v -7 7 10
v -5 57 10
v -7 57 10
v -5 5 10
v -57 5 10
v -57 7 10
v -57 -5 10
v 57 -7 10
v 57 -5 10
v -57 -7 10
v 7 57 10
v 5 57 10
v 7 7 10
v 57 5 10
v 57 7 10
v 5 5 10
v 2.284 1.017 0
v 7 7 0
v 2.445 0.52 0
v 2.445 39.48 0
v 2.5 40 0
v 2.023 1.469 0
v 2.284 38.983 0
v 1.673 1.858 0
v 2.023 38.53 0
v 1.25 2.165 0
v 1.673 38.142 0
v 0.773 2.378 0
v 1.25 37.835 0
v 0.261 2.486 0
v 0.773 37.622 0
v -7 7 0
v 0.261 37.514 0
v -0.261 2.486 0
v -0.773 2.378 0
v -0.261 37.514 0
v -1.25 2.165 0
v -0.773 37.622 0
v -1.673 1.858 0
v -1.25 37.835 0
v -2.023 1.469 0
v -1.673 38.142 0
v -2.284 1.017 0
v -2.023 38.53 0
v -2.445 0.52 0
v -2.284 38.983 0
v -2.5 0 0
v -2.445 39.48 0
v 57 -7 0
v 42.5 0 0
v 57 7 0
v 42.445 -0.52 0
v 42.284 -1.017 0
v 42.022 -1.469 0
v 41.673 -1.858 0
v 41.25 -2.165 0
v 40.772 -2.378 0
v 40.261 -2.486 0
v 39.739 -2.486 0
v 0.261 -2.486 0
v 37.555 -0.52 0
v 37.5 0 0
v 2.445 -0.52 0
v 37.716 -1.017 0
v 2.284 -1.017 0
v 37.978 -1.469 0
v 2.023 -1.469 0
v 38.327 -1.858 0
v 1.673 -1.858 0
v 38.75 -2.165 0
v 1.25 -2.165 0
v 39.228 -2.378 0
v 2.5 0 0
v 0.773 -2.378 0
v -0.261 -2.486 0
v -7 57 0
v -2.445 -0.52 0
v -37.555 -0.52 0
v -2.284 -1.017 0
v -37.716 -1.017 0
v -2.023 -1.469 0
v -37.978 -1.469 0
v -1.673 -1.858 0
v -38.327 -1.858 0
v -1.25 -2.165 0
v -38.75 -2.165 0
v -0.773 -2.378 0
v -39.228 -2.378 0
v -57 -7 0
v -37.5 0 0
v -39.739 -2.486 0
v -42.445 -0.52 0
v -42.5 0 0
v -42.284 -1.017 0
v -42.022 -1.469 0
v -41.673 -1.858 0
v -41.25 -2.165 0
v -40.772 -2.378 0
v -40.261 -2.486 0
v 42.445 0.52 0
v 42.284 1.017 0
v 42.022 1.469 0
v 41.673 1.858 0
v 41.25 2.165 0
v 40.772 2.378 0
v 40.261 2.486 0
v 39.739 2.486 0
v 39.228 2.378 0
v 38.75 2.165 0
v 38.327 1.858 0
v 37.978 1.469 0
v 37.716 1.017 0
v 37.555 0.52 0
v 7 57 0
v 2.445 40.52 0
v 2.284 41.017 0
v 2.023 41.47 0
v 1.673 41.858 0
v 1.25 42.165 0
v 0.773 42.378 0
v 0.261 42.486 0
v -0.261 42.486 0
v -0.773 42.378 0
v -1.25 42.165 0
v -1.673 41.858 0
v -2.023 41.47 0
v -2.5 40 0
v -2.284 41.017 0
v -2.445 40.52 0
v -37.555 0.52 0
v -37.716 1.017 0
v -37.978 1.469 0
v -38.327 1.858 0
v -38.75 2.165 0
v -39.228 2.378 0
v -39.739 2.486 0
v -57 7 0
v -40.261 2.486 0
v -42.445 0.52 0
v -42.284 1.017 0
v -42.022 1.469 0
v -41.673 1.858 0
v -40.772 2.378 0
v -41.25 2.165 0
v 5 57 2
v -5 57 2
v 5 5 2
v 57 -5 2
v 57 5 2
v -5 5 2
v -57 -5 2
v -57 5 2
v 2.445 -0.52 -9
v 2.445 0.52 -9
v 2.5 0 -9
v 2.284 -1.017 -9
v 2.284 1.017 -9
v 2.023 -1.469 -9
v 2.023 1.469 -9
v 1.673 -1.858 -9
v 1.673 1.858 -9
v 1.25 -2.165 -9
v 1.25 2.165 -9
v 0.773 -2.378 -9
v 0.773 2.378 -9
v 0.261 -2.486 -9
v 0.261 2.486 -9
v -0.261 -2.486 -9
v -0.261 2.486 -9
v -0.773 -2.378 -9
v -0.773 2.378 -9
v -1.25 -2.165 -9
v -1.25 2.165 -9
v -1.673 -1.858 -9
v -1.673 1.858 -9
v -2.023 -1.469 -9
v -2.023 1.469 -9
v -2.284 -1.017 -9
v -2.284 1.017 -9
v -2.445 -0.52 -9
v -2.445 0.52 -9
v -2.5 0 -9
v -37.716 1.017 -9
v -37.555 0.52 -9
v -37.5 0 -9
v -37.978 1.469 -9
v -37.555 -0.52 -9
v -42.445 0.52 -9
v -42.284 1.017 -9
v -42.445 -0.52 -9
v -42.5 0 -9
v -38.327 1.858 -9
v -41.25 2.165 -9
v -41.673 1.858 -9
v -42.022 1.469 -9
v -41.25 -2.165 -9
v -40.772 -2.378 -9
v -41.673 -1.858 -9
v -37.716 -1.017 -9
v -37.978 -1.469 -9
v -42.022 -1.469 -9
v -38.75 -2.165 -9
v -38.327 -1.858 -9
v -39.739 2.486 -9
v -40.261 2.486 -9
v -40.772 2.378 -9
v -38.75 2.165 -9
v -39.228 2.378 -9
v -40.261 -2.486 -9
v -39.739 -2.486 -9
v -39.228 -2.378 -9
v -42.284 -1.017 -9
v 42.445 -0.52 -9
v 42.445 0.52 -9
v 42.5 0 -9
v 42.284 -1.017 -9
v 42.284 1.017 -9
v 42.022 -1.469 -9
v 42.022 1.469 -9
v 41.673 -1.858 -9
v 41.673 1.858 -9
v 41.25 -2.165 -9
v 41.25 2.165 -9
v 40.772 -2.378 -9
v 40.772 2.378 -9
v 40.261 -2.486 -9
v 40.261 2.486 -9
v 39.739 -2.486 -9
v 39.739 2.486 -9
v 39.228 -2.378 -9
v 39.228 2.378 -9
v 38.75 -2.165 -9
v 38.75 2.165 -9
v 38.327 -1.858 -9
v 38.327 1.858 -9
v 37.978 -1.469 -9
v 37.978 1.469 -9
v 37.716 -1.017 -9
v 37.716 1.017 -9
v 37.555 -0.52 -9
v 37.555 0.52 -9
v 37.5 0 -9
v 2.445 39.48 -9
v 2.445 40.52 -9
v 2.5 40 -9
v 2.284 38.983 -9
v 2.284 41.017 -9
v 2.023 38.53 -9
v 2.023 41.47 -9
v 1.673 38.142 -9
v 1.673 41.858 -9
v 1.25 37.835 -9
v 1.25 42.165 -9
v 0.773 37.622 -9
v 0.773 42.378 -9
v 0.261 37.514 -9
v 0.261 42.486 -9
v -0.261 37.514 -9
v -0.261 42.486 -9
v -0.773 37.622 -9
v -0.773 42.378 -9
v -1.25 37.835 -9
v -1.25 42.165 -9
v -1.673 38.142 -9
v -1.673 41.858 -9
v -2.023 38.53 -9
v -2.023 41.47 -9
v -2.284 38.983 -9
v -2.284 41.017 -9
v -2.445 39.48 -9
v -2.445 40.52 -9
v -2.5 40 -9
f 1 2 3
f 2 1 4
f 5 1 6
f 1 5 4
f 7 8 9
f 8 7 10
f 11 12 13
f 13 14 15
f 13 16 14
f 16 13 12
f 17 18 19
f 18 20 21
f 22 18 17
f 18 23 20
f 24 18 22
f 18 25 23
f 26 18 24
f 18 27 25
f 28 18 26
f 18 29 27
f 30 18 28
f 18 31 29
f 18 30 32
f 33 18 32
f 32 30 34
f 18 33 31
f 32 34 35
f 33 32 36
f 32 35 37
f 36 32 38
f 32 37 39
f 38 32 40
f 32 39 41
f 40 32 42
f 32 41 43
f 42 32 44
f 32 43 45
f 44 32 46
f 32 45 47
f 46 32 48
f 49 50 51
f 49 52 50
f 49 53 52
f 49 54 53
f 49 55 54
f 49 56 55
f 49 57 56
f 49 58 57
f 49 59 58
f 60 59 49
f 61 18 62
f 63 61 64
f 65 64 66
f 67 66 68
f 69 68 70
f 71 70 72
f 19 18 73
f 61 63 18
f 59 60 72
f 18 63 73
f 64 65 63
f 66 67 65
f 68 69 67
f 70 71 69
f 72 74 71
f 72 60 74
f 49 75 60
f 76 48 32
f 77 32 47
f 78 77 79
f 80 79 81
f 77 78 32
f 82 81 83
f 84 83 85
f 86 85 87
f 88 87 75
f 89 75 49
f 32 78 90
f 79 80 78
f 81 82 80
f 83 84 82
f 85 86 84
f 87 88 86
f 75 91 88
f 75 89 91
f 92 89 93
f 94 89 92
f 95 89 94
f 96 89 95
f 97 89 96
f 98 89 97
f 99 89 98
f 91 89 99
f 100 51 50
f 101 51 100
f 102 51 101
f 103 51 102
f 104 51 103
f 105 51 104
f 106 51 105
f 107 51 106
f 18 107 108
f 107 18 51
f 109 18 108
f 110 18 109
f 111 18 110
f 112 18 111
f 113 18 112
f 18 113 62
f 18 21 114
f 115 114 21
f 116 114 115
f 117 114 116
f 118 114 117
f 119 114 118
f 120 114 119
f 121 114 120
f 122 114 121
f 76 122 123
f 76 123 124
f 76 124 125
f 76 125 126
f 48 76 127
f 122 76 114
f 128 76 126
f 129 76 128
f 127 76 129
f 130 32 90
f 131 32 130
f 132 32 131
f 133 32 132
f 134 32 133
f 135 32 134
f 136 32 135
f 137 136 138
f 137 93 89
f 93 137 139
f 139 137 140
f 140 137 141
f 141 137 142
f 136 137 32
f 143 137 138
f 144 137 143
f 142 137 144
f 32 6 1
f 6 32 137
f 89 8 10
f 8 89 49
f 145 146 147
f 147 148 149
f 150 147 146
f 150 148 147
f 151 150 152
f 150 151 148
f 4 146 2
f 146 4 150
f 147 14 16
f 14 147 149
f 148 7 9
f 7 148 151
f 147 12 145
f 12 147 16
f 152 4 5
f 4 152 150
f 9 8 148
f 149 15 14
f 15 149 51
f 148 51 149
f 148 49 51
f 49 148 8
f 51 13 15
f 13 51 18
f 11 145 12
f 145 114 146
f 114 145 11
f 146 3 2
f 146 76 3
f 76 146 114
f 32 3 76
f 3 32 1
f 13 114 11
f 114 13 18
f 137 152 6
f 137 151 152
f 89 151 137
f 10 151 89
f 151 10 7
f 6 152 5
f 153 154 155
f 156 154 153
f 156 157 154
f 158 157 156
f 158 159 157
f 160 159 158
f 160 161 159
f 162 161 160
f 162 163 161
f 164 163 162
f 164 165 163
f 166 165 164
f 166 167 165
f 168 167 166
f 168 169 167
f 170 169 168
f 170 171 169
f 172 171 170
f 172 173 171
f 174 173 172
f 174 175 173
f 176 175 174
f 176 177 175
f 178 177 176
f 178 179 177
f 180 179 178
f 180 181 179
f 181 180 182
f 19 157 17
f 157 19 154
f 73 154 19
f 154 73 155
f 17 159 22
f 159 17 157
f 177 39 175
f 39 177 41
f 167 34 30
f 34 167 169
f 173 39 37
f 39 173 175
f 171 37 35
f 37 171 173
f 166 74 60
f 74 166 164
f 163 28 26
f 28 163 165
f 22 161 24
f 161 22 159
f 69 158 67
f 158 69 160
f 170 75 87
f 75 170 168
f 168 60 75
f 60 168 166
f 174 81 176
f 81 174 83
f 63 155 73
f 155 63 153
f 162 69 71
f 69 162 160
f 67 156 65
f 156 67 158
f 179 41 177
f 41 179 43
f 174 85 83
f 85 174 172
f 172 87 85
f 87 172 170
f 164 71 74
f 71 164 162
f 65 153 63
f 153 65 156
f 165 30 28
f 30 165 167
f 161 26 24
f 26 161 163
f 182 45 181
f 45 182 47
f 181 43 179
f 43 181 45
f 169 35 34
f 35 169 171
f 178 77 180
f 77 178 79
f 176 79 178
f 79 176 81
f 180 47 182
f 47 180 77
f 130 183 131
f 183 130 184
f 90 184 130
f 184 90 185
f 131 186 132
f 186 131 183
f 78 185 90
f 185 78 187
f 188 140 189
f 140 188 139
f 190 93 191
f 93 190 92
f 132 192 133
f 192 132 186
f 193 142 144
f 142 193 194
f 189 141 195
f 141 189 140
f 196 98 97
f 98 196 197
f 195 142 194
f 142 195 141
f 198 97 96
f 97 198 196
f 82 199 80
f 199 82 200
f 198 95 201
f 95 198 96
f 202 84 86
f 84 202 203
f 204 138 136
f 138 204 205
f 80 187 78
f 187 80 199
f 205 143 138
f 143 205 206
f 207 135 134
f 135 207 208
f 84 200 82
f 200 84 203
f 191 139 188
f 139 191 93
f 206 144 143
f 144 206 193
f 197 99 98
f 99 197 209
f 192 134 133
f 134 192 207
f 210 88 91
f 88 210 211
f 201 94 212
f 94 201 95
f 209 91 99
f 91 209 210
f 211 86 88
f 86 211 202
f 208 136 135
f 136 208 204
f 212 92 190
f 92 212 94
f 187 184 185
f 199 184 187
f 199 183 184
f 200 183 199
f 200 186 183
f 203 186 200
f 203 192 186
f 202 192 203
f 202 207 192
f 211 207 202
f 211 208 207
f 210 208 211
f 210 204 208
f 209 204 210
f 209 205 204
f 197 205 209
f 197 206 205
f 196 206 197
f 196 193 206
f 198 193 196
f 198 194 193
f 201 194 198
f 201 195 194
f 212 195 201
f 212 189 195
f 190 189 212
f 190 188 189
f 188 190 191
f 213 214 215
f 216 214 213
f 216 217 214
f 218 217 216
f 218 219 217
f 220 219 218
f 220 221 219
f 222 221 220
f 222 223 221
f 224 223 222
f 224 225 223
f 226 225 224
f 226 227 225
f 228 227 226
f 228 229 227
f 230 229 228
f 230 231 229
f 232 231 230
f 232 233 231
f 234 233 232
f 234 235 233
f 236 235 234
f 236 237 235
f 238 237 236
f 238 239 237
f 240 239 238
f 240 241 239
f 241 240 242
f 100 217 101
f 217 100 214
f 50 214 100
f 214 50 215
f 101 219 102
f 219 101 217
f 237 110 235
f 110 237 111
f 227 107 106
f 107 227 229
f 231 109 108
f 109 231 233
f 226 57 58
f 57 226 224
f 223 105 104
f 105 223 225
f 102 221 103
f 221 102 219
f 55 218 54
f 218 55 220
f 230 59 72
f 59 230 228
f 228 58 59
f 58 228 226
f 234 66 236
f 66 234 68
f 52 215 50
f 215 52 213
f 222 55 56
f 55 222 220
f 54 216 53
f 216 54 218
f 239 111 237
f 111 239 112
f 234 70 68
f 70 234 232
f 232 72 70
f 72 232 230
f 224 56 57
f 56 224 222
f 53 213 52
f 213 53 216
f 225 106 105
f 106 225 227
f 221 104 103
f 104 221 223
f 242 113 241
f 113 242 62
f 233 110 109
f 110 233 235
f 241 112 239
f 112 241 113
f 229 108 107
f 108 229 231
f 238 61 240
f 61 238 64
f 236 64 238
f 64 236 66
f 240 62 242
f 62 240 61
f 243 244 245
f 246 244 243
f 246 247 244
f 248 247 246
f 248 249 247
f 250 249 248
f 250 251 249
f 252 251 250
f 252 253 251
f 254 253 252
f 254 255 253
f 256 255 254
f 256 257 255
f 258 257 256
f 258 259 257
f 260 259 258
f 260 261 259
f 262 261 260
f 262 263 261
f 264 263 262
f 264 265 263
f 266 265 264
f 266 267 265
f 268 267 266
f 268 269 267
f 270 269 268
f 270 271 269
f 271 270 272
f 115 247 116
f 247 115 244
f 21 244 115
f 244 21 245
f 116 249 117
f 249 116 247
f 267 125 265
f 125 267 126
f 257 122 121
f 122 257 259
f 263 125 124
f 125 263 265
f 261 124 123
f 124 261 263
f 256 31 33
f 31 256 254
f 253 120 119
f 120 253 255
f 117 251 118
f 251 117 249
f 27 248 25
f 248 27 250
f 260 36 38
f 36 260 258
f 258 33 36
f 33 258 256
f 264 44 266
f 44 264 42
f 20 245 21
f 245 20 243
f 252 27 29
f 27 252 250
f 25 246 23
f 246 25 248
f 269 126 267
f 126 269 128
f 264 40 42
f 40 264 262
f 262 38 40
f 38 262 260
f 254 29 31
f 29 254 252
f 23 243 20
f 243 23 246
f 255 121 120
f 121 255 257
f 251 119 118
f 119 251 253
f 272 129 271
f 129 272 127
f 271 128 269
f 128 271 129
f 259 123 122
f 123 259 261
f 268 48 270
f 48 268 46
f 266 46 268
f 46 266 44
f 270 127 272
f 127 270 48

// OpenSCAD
// Т-образный паз с шипами для вставки в основание (УДЛИНЕННАЯ ВЕРСИЯ)
// Модульная конструкция: центральное основание + 3 рукава + шипы

// Параметры (все размеры в мм)
center_size = 10;     // Размер центрального квадрата (внутри)
sleeve_length = 50;   // Длина рукава (удлиненная)
groove_width = 10;    // Ширина паза (внутри) - для фанеры 9.3мм
wall_height = 10;     // Высота стенок
wall_thickness = 2;   // Толщина стенок

// Параметры шипов
dowel_diameter = 5;   // Диаметр шипа
dowel_depth = 9;      // Глубина шипа (высота)
dowel_spacing = 40;   // Шаг между шипами (удлиненный)

// Вычисляемые размеры
total_width = groove_width + 2 * wall_thickness;  // 14 мм
center_total = center_size + 2 * wall_thickness;  // 14 мм

// 1. Метод: нарисовать основание
module draw_base() {
    difference() {
        cube([center_total, center_total, wall_height]);
        translate([wall_thickness, wall_thickness, wall_thickness])
            cube([center_size, center_size, wall_height]);
    }
}

// Модуль для создания одного рукава
module single_sleeve() {
    difference() {
        cube([sleeve_length, total_width, wall_height]);
        translate([0, wall_thickness, wall_thickness])
            cube([sleeve_length, groove_width, wall_height]);
    }
}

// Метод: вырезать отверстие в стенке основания
module cut_wall_opening(side) {
    if (side == 0) {
        translate([center_total - wall_thickness - 0.1, wall_thickness, wall_thickness])
            cube([wall_thickness + 0.2, groove_width, wall_height]);
    } else if (side == 1) {
        translate([wall_thickness, center_total - wall_thickness - 0.1, wall_thickness])
            cube([groove_width, wall_thickness + 0.2, wall_height]);
    } else if (side == 2) {
        translate([-0.1, wall_thickness, wall_thickness])
            cube([wall_thickness + 0.2, groove_width, wall_height]);
    }
}

// 2. Метод: прицепить рукав к основанию
module attach_sleeve(side) {
    if (side == 0) {
        translate([center_total, center_total/2 - total_width/2, 0])
            single_sleeve();
    } else if (side == 1) {
        translate([center_total/2 + total_width/2, center_total, 0])
            rotate([0, 0, 90])
                single_sleeve();
    } else if (side == 2) {
        translate([-sleeve_length, center_total/2 - total_width/2, 0])
            single_sleeve();
    }
}

// 3. Метод: добавить шип в позиции (x, y)
module add_dowel(x, y) {
    translate([x, y, -dowel_depth])
        cylinder(h=dowel_depth, d=dowel_diameter, $fn=30);
}

// Собираем Т-образную конструкцию с шипами
translate([-center_total/2, -center_total/2, 0]) {
    union() {
        difference() {
            draw_base();
            cut_wall_opening(0);  // Право
            cut_wall_opening(1);  // Верх
            cut_wall_opening(2);  // Лево
        }
        attach_sleeve(0);  // Право
        attach_sleeve(1);  // Верх
        attach_sleeve(2);  // Лево

        // Шипы: центр + 3 направления
        add_dowel(center_total/2, center_total/2);                    // Центр
        add_dowel(center_total/2 - dowel_spacing, center_total/2);   // Лево
        add_dowel(center_total/2 + dowel_spacing, center_total/2);   // Право
        add_dowel(center_total/2, center_total/2 + dowel_spacing);   // Верх
    }
}

// Информация для проверки
echo("=== Размеры Т-образного паза с шипами (LONG) ===");
echo("Длина рукава:", sleeve_length, "мм");
echo("Количество шипов: 4 (центр + 3 направления)");
echo("Шаг между шипами:", dowel_spacing, "мм");
